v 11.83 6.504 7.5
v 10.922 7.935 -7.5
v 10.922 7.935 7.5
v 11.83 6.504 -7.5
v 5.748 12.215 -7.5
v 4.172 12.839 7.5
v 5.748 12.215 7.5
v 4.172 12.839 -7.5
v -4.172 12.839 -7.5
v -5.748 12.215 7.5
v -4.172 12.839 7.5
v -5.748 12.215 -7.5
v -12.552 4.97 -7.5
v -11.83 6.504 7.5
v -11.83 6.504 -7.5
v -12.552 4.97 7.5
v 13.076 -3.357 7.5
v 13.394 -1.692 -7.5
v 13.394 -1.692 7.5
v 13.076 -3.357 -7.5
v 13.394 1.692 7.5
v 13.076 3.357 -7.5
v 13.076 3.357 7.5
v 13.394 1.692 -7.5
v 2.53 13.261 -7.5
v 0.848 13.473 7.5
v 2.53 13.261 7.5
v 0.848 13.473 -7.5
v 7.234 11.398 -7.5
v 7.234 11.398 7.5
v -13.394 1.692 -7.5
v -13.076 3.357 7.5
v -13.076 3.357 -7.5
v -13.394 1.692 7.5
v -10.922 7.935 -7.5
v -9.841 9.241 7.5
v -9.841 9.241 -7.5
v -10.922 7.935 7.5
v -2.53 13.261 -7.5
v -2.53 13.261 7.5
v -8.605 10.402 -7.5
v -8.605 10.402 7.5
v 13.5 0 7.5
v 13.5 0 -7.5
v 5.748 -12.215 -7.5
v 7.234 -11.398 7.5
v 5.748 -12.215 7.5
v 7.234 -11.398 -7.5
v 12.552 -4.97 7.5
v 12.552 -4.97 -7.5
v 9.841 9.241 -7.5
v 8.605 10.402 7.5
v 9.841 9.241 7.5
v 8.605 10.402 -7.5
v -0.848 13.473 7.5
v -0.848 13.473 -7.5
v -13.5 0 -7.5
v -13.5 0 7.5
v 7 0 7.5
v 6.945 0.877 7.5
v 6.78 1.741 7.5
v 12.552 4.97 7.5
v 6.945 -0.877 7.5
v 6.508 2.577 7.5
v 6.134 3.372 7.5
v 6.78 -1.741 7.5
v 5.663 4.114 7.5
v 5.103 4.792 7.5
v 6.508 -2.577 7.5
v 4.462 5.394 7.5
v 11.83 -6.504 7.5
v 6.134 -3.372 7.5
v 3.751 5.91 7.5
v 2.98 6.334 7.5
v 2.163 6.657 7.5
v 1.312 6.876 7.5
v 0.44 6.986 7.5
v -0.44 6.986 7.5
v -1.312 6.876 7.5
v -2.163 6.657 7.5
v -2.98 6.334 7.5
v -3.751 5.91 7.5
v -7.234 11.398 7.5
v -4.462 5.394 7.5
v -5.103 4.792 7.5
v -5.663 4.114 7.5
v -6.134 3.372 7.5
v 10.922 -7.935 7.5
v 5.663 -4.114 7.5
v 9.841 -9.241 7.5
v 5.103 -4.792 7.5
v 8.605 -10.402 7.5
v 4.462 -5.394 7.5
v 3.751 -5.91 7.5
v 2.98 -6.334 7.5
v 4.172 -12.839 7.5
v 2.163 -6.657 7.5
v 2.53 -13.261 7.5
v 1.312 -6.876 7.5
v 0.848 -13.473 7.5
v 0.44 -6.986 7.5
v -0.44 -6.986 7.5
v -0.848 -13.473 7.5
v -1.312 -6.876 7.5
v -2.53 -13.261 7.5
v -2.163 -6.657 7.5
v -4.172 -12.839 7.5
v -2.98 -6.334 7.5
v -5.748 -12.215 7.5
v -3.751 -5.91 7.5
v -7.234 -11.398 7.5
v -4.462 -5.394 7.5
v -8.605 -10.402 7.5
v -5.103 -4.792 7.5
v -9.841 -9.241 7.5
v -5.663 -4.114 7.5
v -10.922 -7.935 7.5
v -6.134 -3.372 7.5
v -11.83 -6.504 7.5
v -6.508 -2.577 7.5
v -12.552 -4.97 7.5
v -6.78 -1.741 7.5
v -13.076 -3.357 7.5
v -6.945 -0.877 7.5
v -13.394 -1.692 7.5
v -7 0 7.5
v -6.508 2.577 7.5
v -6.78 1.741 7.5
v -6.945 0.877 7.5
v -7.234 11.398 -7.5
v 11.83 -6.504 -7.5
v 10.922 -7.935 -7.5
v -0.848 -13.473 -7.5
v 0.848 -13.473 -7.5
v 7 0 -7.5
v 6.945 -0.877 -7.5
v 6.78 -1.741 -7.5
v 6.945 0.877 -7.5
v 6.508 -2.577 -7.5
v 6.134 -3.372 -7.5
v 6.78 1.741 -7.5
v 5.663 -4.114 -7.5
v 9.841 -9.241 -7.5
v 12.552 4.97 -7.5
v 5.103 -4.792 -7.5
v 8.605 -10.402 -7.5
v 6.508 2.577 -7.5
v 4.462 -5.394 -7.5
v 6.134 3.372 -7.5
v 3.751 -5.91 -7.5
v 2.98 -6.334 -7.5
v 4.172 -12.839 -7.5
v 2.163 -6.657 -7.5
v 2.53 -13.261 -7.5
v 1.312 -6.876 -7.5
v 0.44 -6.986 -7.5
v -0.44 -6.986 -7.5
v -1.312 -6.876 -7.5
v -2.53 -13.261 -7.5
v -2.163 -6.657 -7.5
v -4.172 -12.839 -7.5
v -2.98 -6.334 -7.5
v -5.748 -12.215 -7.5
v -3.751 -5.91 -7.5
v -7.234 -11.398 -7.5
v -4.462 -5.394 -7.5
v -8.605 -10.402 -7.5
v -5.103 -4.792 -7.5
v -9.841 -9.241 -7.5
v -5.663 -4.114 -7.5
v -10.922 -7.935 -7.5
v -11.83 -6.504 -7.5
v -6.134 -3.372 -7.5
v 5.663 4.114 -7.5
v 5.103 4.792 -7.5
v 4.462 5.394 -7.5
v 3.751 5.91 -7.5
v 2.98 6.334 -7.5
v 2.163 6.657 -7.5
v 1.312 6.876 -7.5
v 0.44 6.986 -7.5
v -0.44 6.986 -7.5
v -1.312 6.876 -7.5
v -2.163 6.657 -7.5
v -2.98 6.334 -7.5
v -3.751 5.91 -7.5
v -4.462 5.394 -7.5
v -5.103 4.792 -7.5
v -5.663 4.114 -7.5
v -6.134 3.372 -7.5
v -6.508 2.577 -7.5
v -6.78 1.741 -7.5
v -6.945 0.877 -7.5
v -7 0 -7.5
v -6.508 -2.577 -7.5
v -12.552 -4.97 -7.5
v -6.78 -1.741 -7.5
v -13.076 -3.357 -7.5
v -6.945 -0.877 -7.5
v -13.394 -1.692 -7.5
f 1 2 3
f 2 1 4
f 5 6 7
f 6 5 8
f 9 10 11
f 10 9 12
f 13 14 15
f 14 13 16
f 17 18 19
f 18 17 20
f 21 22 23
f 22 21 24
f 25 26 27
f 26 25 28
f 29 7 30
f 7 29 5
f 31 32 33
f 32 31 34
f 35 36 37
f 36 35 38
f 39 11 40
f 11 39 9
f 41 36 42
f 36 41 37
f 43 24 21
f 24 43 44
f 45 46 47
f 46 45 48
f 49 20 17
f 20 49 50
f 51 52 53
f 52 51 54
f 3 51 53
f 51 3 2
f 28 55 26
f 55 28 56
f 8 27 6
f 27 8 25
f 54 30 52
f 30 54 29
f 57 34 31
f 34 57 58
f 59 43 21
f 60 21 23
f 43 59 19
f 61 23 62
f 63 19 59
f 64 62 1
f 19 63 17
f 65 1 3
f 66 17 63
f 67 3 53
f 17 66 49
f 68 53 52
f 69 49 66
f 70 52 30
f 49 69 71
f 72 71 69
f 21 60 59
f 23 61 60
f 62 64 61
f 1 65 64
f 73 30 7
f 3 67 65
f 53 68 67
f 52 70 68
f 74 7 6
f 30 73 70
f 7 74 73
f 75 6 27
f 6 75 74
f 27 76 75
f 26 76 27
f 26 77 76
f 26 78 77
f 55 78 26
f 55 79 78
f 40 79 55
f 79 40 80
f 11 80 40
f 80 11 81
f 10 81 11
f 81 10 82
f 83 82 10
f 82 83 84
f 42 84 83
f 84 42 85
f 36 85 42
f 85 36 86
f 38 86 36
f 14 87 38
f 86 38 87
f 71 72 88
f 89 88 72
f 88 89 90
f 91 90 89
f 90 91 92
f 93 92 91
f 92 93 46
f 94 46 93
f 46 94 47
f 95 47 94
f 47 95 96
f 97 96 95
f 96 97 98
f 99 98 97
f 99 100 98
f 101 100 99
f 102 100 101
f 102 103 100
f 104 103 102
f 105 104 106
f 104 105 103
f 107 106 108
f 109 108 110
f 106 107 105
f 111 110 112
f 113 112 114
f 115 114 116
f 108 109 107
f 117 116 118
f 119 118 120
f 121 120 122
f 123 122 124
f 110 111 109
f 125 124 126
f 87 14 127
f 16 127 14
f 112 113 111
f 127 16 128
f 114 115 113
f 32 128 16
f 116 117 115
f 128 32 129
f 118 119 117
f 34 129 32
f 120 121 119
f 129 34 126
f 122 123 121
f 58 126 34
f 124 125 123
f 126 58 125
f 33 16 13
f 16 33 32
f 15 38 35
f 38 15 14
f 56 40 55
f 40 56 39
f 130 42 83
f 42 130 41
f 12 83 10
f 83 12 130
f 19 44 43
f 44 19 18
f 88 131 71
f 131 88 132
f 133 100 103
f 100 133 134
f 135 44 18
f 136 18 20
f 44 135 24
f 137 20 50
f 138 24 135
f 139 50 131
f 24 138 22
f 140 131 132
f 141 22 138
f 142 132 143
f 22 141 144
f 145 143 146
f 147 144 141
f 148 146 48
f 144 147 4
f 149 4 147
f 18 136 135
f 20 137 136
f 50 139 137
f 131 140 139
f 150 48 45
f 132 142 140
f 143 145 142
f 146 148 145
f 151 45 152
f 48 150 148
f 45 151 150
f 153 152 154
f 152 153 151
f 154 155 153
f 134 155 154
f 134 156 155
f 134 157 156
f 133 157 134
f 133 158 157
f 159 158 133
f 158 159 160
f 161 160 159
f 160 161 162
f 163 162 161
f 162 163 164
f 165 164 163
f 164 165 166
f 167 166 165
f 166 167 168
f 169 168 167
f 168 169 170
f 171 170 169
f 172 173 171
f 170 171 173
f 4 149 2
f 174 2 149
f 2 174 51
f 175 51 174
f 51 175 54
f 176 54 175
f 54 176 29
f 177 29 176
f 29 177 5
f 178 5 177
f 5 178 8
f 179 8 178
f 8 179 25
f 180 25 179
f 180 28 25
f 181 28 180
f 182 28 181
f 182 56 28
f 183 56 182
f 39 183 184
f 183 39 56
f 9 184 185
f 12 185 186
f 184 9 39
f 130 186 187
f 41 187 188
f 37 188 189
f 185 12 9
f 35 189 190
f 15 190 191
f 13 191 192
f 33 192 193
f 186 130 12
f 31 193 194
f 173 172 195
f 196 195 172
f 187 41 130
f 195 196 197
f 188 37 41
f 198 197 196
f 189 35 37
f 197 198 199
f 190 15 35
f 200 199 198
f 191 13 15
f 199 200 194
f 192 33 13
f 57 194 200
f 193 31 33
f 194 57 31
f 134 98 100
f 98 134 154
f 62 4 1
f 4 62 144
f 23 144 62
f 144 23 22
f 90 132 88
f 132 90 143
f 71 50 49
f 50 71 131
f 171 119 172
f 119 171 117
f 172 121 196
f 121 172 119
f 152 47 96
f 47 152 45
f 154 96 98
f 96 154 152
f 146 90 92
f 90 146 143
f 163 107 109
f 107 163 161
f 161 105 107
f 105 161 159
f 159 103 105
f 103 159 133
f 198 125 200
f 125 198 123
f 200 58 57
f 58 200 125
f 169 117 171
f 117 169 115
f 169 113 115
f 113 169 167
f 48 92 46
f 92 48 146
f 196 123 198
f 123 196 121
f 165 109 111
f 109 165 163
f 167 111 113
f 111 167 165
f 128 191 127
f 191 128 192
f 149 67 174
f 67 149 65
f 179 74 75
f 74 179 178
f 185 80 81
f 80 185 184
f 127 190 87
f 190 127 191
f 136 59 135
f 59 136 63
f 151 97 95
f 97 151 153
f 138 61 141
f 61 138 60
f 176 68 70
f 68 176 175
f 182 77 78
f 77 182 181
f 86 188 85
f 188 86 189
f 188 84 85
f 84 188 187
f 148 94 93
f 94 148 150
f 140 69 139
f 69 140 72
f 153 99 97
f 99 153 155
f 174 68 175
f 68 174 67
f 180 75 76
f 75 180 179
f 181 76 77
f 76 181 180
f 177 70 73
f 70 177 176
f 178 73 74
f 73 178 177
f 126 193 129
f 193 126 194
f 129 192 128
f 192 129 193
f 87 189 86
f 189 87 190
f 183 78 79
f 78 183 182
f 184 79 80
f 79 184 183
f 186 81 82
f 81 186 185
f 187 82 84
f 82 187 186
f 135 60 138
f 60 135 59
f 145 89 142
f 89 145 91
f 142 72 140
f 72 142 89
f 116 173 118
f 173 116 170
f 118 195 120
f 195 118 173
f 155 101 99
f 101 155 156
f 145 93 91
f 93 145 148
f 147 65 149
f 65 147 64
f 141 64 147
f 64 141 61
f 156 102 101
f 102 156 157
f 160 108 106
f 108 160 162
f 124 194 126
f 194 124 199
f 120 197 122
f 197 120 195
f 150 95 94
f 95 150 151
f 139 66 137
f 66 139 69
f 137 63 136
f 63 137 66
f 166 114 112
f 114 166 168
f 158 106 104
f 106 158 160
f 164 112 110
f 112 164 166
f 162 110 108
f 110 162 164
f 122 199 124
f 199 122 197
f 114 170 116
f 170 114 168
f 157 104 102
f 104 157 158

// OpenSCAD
$fn = 50;


difference() {
	union() {
		translate(v = [0, 0, -7.5000000000]) {
			cylinder(h = 15, r = 13.5000000000);
		}
	}
	union() {
		translate(v = [0, 0, -100.0000000000]) {
			cylinder(h = 200, r = 7);
		}
	}
}
